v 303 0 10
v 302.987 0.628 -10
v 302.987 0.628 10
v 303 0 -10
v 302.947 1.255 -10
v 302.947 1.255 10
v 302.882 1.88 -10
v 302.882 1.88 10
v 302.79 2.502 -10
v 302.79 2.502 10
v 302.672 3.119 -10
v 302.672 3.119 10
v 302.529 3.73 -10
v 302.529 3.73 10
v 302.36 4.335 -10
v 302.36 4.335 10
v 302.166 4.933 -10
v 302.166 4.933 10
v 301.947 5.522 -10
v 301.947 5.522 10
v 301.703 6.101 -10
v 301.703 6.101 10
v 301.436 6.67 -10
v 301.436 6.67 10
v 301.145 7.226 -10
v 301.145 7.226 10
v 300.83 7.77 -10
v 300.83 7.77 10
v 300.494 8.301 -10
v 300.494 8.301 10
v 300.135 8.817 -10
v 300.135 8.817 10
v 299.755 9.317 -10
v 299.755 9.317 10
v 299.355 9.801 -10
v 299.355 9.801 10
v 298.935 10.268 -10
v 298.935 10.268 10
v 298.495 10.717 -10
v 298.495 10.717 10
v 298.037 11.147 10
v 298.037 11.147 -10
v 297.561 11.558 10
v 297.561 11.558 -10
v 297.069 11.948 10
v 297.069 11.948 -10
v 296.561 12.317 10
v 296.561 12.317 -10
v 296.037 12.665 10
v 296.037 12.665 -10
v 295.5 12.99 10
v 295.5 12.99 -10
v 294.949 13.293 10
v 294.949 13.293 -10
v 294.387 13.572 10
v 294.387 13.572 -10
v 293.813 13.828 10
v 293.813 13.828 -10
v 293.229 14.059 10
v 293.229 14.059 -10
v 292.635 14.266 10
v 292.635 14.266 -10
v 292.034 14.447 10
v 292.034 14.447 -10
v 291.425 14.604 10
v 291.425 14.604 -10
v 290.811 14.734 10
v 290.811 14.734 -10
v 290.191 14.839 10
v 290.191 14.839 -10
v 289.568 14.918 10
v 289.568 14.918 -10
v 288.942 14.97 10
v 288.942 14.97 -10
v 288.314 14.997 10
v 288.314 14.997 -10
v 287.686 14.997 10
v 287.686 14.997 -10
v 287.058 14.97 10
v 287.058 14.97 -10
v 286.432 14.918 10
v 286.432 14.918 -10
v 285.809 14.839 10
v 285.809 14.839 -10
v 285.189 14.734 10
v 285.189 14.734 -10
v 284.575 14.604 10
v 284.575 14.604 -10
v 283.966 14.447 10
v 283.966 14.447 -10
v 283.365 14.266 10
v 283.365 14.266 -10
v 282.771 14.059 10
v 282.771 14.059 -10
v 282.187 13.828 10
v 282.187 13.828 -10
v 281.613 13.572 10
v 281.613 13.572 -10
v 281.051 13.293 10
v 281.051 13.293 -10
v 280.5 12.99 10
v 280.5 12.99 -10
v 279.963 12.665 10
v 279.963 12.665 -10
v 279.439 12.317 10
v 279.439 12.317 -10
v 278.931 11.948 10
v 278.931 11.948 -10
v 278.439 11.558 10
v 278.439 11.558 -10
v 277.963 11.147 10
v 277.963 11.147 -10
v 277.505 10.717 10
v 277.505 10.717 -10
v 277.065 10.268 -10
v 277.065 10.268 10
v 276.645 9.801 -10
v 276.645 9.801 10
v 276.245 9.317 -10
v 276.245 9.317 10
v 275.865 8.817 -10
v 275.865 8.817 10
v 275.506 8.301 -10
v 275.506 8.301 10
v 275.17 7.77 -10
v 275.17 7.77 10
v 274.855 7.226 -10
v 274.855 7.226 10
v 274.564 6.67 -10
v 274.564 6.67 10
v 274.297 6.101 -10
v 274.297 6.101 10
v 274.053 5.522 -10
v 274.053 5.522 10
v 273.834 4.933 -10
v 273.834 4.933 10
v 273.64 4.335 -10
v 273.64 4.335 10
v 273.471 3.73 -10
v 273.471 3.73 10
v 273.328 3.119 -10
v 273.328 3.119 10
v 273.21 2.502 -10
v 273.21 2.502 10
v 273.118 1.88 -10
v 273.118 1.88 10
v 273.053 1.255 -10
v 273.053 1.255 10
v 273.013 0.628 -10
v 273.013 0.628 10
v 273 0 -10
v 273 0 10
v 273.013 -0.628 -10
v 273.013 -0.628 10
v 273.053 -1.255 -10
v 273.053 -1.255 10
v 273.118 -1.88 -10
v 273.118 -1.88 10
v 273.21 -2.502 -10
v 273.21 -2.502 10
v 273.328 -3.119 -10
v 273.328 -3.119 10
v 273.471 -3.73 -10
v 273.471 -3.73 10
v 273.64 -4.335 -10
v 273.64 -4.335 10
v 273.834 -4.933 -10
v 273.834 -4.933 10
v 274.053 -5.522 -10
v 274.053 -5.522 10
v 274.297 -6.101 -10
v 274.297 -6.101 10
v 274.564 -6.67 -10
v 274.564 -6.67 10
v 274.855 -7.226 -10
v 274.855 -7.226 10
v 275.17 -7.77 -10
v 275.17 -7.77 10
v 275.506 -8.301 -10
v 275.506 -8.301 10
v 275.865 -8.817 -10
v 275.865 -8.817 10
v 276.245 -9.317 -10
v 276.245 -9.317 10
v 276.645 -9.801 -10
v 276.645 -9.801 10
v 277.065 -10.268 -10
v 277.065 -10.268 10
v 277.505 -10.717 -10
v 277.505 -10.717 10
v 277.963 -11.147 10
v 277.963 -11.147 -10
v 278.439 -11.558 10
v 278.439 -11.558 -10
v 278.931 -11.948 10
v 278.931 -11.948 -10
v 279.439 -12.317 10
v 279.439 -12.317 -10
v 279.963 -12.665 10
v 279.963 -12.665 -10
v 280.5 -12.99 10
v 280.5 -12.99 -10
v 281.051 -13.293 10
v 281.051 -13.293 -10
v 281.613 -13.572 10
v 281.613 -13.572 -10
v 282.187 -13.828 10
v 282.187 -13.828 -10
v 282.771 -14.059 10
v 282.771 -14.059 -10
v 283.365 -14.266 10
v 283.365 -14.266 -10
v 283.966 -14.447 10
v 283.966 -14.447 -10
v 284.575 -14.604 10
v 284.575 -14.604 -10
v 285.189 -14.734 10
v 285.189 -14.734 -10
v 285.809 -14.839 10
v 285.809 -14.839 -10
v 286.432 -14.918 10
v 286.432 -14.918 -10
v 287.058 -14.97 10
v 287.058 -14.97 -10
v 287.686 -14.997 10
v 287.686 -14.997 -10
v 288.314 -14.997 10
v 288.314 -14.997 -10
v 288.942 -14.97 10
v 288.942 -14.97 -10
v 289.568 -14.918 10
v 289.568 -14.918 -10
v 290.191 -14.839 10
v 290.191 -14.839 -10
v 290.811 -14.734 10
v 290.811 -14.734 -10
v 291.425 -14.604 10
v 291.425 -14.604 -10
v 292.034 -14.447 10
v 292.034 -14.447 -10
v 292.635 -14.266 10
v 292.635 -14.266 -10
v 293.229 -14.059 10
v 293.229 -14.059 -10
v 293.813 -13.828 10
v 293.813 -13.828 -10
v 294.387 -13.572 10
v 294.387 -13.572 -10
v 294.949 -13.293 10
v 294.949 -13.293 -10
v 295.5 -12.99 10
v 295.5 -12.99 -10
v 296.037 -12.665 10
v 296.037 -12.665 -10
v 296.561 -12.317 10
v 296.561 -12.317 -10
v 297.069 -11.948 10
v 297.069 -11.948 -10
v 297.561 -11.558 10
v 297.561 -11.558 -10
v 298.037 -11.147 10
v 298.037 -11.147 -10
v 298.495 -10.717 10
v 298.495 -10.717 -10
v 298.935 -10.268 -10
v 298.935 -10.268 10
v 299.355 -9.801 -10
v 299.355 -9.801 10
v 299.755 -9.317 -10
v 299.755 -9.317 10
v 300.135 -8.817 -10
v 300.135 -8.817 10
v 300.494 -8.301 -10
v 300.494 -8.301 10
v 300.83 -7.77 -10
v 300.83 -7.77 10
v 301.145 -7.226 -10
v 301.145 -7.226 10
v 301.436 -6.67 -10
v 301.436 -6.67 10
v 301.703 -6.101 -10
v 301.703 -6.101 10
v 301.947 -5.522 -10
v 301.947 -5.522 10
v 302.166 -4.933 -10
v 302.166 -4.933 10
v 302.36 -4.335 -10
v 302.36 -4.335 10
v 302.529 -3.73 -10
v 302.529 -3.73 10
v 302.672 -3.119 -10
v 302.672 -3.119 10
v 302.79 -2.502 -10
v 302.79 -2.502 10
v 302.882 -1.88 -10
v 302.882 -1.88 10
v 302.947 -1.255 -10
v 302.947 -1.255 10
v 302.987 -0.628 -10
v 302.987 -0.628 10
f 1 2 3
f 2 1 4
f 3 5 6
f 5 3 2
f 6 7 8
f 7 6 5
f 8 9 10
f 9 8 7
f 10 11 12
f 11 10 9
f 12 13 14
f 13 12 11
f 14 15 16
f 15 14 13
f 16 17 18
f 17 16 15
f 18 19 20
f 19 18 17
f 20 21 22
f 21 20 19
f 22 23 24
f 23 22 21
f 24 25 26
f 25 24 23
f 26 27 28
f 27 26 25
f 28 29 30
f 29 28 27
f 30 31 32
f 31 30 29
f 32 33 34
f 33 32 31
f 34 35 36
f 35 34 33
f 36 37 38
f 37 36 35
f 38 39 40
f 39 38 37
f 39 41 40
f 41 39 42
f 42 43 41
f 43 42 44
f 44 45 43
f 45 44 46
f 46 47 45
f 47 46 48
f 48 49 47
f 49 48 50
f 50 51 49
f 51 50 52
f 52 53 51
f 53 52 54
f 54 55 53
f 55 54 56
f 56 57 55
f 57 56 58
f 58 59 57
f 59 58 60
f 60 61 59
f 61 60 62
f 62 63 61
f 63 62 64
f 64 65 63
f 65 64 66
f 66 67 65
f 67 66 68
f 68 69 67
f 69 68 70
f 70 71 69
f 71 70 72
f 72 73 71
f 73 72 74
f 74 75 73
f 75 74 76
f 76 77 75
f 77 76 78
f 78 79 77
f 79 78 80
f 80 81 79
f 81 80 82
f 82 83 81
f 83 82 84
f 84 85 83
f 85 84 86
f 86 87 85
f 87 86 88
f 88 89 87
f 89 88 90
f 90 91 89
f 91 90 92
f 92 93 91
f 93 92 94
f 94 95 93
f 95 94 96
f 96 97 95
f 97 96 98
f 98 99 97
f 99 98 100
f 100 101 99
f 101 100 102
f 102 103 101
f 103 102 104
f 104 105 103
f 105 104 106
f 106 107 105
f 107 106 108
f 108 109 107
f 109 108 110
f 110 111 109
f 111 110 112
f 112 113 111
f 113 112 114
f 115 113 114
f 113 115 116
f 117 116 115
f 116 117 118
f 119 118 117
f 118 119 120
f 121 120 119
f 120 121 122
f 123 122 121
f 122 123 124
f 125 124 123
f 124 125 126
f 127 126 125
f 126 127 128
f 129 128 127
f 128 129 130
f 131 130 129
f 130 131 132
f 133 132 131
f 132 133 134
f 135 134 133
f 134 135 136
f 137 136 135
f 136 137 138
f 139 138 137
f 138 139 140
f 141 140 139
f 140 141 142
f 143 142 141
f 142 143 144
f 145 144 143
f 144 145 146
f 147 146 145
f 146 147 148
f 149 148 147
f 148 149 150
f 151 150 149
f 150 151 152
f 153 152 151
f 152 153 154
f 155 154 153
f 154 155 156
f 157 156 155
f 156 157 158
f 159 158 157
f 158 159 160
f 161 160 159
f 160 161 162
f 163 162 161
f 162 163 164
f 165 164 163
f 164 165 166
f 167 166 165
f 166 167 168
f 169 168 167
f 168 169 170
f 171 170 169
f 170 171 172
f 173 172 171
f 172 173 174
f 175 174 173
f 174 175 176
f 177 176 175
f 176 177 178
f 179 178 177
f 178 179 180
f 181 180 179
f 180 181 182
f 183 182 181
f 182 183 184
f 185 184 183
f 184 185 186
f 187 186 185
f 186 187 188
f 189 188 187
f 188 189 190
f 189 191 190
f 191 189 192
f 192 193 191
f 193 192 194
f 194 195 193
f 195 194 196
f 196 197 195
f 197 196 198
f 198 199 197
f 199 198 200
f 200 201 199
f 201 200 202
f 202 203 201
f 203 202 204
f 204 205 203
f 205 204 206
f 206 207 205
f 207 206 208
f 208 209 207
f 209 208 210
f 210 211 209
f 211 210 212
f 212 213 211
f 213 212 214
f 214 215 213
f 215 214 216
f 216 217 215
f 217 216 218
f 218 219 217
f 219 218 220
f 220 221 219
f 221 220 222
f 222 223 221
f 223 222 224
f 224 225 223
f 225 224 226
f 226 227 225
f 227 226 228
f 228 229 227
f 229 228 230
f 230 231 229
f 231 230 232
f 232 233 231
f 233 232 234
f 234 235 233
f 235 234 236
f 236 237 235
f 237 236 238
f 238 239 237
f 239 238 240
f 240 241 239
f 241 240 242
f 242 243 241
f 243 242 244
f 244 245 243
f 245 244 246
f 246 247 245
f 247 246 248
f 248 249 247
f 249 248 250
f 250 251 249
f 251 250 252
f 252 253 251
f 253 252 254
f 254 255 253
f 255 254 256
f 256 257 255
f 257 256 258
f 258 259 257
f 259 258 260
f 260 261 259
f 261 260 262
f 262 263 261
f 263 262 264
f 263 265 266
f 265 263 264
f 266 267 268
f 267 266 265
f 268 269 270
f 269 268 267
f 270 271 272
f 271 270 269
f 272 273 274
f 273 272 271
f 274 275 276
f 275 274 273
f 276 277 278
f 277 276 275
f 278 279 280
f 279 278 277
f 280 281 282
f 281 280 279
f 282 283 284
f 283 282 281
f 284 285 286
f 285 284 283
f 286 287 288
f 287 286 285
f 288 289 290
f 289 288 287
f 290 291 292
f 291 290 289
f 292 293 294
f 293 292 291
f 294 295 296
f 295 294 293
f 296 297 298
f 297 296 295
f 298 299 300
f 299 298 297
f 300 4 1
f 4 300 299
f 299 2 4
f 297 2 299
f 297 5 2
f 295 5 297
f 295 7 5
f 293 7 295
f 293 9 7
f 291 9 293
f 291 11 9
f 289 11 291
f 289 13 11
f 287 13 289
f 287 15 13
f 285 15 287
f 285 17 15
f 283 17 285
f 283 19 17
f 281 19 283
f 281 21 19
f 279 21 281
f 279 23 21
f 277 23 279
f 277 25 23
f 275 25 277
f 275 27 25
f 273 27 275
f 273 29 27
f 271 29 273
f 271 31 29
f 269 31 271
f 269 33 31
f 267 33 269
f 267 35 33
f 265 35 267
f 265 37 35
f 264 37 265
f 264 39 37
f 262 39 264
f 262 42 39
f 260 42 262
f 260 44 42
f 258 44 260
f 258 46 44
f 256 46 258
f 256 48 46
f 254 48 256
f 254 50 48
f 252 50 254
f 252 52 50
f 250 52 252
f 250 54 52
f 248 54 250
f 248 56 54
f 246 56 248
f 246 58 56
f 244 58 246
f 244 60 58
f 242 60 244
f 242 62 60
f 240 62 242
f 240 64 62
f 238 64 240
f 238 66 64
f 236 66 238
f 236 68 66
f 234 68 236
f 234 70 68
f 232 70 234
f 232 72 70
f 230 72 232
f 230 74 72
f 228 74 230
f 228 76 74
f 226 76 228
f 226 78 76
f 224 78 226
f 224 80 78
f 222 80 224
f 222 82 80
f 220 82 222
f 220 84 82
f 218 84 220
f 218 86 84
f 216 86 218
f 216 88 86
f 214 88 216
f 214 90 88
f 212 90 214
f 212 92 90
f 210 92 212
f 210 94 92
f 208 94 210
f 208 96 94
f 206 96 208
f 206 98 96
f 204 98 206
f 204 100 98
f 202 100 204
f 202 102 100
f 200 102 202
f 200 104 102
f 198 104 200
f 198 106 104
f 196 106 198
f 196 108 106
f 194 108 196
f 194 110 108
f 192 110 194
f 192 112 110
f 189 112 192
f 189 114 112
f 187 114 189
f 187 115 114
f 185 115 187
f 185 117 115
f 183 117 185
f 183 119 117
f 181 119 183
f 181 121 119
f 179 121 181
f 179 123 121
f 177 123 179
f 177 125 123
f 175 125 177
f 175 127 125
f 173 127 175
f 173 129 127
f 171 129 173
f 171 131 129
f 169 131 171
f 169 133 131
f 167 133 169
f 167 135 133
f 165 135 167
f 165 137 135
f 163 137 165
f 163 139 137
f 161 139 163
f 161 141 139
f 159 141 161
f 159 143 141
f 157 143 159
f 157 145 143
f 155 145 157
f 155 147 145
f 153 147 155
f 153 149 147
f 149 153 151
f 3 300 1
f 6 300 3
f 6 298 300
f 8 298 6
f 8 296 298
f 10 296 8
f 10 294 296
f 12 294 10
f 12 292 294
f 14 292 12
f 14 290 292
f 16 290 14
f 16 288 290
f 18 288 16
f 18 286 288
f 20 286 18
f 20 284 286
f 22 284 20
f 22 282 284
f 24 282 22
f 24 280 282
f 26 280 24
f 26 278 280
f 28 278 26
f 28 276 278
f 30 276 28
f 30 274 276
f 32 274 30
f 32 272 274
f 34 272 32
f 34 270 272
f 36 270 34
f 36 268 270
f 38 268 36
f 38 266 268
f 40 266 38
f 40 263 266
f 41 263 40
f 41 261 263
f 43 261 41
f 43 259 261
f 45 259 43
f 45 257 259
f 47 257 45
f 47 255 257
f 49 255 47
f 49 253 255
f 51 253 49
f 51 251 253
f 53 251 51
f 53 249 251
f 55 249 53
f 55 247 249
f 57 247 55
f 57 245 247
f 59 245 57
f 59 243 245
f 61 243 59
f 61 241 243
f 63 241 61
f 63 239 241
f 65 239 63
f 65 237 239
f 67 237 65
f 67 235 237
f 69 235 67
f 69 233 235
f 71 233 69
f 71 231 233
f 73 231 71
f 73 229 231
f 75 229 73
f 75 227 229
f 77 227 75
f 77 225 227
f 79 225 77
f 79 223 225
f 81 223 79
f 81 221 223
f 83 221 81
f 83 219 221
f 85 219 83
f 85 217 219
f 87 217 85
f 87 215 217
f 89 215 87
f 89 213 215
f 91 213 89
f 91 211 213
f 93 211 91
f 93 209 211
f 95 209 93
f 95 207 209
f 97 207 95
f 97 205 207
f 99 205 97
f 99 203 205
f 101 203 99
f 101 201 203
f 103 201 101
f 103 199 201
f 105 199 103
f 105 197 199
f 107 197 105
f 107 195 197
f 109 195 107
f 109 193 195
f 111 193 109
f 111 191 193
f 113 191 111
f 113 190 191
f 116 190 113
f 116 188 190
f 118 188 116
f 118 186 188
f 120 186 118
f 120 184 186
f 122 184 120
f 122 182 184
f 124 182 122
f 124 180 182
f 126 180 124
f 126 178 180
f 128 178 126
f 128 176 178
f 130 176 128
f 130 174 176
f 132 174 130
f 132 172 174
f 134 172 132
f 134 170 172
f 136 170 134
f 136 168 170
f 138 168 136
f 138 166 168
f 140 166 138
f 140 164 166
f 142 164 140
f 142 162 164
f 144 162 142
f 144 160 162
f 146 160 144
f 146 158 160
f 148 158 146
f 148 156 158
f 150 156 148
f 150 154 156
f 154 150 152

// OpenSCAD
$fn = 150;

translate([288, 0, 0])
rotate([0, 0, 0])
cylinder(20, 15, 15, true);
